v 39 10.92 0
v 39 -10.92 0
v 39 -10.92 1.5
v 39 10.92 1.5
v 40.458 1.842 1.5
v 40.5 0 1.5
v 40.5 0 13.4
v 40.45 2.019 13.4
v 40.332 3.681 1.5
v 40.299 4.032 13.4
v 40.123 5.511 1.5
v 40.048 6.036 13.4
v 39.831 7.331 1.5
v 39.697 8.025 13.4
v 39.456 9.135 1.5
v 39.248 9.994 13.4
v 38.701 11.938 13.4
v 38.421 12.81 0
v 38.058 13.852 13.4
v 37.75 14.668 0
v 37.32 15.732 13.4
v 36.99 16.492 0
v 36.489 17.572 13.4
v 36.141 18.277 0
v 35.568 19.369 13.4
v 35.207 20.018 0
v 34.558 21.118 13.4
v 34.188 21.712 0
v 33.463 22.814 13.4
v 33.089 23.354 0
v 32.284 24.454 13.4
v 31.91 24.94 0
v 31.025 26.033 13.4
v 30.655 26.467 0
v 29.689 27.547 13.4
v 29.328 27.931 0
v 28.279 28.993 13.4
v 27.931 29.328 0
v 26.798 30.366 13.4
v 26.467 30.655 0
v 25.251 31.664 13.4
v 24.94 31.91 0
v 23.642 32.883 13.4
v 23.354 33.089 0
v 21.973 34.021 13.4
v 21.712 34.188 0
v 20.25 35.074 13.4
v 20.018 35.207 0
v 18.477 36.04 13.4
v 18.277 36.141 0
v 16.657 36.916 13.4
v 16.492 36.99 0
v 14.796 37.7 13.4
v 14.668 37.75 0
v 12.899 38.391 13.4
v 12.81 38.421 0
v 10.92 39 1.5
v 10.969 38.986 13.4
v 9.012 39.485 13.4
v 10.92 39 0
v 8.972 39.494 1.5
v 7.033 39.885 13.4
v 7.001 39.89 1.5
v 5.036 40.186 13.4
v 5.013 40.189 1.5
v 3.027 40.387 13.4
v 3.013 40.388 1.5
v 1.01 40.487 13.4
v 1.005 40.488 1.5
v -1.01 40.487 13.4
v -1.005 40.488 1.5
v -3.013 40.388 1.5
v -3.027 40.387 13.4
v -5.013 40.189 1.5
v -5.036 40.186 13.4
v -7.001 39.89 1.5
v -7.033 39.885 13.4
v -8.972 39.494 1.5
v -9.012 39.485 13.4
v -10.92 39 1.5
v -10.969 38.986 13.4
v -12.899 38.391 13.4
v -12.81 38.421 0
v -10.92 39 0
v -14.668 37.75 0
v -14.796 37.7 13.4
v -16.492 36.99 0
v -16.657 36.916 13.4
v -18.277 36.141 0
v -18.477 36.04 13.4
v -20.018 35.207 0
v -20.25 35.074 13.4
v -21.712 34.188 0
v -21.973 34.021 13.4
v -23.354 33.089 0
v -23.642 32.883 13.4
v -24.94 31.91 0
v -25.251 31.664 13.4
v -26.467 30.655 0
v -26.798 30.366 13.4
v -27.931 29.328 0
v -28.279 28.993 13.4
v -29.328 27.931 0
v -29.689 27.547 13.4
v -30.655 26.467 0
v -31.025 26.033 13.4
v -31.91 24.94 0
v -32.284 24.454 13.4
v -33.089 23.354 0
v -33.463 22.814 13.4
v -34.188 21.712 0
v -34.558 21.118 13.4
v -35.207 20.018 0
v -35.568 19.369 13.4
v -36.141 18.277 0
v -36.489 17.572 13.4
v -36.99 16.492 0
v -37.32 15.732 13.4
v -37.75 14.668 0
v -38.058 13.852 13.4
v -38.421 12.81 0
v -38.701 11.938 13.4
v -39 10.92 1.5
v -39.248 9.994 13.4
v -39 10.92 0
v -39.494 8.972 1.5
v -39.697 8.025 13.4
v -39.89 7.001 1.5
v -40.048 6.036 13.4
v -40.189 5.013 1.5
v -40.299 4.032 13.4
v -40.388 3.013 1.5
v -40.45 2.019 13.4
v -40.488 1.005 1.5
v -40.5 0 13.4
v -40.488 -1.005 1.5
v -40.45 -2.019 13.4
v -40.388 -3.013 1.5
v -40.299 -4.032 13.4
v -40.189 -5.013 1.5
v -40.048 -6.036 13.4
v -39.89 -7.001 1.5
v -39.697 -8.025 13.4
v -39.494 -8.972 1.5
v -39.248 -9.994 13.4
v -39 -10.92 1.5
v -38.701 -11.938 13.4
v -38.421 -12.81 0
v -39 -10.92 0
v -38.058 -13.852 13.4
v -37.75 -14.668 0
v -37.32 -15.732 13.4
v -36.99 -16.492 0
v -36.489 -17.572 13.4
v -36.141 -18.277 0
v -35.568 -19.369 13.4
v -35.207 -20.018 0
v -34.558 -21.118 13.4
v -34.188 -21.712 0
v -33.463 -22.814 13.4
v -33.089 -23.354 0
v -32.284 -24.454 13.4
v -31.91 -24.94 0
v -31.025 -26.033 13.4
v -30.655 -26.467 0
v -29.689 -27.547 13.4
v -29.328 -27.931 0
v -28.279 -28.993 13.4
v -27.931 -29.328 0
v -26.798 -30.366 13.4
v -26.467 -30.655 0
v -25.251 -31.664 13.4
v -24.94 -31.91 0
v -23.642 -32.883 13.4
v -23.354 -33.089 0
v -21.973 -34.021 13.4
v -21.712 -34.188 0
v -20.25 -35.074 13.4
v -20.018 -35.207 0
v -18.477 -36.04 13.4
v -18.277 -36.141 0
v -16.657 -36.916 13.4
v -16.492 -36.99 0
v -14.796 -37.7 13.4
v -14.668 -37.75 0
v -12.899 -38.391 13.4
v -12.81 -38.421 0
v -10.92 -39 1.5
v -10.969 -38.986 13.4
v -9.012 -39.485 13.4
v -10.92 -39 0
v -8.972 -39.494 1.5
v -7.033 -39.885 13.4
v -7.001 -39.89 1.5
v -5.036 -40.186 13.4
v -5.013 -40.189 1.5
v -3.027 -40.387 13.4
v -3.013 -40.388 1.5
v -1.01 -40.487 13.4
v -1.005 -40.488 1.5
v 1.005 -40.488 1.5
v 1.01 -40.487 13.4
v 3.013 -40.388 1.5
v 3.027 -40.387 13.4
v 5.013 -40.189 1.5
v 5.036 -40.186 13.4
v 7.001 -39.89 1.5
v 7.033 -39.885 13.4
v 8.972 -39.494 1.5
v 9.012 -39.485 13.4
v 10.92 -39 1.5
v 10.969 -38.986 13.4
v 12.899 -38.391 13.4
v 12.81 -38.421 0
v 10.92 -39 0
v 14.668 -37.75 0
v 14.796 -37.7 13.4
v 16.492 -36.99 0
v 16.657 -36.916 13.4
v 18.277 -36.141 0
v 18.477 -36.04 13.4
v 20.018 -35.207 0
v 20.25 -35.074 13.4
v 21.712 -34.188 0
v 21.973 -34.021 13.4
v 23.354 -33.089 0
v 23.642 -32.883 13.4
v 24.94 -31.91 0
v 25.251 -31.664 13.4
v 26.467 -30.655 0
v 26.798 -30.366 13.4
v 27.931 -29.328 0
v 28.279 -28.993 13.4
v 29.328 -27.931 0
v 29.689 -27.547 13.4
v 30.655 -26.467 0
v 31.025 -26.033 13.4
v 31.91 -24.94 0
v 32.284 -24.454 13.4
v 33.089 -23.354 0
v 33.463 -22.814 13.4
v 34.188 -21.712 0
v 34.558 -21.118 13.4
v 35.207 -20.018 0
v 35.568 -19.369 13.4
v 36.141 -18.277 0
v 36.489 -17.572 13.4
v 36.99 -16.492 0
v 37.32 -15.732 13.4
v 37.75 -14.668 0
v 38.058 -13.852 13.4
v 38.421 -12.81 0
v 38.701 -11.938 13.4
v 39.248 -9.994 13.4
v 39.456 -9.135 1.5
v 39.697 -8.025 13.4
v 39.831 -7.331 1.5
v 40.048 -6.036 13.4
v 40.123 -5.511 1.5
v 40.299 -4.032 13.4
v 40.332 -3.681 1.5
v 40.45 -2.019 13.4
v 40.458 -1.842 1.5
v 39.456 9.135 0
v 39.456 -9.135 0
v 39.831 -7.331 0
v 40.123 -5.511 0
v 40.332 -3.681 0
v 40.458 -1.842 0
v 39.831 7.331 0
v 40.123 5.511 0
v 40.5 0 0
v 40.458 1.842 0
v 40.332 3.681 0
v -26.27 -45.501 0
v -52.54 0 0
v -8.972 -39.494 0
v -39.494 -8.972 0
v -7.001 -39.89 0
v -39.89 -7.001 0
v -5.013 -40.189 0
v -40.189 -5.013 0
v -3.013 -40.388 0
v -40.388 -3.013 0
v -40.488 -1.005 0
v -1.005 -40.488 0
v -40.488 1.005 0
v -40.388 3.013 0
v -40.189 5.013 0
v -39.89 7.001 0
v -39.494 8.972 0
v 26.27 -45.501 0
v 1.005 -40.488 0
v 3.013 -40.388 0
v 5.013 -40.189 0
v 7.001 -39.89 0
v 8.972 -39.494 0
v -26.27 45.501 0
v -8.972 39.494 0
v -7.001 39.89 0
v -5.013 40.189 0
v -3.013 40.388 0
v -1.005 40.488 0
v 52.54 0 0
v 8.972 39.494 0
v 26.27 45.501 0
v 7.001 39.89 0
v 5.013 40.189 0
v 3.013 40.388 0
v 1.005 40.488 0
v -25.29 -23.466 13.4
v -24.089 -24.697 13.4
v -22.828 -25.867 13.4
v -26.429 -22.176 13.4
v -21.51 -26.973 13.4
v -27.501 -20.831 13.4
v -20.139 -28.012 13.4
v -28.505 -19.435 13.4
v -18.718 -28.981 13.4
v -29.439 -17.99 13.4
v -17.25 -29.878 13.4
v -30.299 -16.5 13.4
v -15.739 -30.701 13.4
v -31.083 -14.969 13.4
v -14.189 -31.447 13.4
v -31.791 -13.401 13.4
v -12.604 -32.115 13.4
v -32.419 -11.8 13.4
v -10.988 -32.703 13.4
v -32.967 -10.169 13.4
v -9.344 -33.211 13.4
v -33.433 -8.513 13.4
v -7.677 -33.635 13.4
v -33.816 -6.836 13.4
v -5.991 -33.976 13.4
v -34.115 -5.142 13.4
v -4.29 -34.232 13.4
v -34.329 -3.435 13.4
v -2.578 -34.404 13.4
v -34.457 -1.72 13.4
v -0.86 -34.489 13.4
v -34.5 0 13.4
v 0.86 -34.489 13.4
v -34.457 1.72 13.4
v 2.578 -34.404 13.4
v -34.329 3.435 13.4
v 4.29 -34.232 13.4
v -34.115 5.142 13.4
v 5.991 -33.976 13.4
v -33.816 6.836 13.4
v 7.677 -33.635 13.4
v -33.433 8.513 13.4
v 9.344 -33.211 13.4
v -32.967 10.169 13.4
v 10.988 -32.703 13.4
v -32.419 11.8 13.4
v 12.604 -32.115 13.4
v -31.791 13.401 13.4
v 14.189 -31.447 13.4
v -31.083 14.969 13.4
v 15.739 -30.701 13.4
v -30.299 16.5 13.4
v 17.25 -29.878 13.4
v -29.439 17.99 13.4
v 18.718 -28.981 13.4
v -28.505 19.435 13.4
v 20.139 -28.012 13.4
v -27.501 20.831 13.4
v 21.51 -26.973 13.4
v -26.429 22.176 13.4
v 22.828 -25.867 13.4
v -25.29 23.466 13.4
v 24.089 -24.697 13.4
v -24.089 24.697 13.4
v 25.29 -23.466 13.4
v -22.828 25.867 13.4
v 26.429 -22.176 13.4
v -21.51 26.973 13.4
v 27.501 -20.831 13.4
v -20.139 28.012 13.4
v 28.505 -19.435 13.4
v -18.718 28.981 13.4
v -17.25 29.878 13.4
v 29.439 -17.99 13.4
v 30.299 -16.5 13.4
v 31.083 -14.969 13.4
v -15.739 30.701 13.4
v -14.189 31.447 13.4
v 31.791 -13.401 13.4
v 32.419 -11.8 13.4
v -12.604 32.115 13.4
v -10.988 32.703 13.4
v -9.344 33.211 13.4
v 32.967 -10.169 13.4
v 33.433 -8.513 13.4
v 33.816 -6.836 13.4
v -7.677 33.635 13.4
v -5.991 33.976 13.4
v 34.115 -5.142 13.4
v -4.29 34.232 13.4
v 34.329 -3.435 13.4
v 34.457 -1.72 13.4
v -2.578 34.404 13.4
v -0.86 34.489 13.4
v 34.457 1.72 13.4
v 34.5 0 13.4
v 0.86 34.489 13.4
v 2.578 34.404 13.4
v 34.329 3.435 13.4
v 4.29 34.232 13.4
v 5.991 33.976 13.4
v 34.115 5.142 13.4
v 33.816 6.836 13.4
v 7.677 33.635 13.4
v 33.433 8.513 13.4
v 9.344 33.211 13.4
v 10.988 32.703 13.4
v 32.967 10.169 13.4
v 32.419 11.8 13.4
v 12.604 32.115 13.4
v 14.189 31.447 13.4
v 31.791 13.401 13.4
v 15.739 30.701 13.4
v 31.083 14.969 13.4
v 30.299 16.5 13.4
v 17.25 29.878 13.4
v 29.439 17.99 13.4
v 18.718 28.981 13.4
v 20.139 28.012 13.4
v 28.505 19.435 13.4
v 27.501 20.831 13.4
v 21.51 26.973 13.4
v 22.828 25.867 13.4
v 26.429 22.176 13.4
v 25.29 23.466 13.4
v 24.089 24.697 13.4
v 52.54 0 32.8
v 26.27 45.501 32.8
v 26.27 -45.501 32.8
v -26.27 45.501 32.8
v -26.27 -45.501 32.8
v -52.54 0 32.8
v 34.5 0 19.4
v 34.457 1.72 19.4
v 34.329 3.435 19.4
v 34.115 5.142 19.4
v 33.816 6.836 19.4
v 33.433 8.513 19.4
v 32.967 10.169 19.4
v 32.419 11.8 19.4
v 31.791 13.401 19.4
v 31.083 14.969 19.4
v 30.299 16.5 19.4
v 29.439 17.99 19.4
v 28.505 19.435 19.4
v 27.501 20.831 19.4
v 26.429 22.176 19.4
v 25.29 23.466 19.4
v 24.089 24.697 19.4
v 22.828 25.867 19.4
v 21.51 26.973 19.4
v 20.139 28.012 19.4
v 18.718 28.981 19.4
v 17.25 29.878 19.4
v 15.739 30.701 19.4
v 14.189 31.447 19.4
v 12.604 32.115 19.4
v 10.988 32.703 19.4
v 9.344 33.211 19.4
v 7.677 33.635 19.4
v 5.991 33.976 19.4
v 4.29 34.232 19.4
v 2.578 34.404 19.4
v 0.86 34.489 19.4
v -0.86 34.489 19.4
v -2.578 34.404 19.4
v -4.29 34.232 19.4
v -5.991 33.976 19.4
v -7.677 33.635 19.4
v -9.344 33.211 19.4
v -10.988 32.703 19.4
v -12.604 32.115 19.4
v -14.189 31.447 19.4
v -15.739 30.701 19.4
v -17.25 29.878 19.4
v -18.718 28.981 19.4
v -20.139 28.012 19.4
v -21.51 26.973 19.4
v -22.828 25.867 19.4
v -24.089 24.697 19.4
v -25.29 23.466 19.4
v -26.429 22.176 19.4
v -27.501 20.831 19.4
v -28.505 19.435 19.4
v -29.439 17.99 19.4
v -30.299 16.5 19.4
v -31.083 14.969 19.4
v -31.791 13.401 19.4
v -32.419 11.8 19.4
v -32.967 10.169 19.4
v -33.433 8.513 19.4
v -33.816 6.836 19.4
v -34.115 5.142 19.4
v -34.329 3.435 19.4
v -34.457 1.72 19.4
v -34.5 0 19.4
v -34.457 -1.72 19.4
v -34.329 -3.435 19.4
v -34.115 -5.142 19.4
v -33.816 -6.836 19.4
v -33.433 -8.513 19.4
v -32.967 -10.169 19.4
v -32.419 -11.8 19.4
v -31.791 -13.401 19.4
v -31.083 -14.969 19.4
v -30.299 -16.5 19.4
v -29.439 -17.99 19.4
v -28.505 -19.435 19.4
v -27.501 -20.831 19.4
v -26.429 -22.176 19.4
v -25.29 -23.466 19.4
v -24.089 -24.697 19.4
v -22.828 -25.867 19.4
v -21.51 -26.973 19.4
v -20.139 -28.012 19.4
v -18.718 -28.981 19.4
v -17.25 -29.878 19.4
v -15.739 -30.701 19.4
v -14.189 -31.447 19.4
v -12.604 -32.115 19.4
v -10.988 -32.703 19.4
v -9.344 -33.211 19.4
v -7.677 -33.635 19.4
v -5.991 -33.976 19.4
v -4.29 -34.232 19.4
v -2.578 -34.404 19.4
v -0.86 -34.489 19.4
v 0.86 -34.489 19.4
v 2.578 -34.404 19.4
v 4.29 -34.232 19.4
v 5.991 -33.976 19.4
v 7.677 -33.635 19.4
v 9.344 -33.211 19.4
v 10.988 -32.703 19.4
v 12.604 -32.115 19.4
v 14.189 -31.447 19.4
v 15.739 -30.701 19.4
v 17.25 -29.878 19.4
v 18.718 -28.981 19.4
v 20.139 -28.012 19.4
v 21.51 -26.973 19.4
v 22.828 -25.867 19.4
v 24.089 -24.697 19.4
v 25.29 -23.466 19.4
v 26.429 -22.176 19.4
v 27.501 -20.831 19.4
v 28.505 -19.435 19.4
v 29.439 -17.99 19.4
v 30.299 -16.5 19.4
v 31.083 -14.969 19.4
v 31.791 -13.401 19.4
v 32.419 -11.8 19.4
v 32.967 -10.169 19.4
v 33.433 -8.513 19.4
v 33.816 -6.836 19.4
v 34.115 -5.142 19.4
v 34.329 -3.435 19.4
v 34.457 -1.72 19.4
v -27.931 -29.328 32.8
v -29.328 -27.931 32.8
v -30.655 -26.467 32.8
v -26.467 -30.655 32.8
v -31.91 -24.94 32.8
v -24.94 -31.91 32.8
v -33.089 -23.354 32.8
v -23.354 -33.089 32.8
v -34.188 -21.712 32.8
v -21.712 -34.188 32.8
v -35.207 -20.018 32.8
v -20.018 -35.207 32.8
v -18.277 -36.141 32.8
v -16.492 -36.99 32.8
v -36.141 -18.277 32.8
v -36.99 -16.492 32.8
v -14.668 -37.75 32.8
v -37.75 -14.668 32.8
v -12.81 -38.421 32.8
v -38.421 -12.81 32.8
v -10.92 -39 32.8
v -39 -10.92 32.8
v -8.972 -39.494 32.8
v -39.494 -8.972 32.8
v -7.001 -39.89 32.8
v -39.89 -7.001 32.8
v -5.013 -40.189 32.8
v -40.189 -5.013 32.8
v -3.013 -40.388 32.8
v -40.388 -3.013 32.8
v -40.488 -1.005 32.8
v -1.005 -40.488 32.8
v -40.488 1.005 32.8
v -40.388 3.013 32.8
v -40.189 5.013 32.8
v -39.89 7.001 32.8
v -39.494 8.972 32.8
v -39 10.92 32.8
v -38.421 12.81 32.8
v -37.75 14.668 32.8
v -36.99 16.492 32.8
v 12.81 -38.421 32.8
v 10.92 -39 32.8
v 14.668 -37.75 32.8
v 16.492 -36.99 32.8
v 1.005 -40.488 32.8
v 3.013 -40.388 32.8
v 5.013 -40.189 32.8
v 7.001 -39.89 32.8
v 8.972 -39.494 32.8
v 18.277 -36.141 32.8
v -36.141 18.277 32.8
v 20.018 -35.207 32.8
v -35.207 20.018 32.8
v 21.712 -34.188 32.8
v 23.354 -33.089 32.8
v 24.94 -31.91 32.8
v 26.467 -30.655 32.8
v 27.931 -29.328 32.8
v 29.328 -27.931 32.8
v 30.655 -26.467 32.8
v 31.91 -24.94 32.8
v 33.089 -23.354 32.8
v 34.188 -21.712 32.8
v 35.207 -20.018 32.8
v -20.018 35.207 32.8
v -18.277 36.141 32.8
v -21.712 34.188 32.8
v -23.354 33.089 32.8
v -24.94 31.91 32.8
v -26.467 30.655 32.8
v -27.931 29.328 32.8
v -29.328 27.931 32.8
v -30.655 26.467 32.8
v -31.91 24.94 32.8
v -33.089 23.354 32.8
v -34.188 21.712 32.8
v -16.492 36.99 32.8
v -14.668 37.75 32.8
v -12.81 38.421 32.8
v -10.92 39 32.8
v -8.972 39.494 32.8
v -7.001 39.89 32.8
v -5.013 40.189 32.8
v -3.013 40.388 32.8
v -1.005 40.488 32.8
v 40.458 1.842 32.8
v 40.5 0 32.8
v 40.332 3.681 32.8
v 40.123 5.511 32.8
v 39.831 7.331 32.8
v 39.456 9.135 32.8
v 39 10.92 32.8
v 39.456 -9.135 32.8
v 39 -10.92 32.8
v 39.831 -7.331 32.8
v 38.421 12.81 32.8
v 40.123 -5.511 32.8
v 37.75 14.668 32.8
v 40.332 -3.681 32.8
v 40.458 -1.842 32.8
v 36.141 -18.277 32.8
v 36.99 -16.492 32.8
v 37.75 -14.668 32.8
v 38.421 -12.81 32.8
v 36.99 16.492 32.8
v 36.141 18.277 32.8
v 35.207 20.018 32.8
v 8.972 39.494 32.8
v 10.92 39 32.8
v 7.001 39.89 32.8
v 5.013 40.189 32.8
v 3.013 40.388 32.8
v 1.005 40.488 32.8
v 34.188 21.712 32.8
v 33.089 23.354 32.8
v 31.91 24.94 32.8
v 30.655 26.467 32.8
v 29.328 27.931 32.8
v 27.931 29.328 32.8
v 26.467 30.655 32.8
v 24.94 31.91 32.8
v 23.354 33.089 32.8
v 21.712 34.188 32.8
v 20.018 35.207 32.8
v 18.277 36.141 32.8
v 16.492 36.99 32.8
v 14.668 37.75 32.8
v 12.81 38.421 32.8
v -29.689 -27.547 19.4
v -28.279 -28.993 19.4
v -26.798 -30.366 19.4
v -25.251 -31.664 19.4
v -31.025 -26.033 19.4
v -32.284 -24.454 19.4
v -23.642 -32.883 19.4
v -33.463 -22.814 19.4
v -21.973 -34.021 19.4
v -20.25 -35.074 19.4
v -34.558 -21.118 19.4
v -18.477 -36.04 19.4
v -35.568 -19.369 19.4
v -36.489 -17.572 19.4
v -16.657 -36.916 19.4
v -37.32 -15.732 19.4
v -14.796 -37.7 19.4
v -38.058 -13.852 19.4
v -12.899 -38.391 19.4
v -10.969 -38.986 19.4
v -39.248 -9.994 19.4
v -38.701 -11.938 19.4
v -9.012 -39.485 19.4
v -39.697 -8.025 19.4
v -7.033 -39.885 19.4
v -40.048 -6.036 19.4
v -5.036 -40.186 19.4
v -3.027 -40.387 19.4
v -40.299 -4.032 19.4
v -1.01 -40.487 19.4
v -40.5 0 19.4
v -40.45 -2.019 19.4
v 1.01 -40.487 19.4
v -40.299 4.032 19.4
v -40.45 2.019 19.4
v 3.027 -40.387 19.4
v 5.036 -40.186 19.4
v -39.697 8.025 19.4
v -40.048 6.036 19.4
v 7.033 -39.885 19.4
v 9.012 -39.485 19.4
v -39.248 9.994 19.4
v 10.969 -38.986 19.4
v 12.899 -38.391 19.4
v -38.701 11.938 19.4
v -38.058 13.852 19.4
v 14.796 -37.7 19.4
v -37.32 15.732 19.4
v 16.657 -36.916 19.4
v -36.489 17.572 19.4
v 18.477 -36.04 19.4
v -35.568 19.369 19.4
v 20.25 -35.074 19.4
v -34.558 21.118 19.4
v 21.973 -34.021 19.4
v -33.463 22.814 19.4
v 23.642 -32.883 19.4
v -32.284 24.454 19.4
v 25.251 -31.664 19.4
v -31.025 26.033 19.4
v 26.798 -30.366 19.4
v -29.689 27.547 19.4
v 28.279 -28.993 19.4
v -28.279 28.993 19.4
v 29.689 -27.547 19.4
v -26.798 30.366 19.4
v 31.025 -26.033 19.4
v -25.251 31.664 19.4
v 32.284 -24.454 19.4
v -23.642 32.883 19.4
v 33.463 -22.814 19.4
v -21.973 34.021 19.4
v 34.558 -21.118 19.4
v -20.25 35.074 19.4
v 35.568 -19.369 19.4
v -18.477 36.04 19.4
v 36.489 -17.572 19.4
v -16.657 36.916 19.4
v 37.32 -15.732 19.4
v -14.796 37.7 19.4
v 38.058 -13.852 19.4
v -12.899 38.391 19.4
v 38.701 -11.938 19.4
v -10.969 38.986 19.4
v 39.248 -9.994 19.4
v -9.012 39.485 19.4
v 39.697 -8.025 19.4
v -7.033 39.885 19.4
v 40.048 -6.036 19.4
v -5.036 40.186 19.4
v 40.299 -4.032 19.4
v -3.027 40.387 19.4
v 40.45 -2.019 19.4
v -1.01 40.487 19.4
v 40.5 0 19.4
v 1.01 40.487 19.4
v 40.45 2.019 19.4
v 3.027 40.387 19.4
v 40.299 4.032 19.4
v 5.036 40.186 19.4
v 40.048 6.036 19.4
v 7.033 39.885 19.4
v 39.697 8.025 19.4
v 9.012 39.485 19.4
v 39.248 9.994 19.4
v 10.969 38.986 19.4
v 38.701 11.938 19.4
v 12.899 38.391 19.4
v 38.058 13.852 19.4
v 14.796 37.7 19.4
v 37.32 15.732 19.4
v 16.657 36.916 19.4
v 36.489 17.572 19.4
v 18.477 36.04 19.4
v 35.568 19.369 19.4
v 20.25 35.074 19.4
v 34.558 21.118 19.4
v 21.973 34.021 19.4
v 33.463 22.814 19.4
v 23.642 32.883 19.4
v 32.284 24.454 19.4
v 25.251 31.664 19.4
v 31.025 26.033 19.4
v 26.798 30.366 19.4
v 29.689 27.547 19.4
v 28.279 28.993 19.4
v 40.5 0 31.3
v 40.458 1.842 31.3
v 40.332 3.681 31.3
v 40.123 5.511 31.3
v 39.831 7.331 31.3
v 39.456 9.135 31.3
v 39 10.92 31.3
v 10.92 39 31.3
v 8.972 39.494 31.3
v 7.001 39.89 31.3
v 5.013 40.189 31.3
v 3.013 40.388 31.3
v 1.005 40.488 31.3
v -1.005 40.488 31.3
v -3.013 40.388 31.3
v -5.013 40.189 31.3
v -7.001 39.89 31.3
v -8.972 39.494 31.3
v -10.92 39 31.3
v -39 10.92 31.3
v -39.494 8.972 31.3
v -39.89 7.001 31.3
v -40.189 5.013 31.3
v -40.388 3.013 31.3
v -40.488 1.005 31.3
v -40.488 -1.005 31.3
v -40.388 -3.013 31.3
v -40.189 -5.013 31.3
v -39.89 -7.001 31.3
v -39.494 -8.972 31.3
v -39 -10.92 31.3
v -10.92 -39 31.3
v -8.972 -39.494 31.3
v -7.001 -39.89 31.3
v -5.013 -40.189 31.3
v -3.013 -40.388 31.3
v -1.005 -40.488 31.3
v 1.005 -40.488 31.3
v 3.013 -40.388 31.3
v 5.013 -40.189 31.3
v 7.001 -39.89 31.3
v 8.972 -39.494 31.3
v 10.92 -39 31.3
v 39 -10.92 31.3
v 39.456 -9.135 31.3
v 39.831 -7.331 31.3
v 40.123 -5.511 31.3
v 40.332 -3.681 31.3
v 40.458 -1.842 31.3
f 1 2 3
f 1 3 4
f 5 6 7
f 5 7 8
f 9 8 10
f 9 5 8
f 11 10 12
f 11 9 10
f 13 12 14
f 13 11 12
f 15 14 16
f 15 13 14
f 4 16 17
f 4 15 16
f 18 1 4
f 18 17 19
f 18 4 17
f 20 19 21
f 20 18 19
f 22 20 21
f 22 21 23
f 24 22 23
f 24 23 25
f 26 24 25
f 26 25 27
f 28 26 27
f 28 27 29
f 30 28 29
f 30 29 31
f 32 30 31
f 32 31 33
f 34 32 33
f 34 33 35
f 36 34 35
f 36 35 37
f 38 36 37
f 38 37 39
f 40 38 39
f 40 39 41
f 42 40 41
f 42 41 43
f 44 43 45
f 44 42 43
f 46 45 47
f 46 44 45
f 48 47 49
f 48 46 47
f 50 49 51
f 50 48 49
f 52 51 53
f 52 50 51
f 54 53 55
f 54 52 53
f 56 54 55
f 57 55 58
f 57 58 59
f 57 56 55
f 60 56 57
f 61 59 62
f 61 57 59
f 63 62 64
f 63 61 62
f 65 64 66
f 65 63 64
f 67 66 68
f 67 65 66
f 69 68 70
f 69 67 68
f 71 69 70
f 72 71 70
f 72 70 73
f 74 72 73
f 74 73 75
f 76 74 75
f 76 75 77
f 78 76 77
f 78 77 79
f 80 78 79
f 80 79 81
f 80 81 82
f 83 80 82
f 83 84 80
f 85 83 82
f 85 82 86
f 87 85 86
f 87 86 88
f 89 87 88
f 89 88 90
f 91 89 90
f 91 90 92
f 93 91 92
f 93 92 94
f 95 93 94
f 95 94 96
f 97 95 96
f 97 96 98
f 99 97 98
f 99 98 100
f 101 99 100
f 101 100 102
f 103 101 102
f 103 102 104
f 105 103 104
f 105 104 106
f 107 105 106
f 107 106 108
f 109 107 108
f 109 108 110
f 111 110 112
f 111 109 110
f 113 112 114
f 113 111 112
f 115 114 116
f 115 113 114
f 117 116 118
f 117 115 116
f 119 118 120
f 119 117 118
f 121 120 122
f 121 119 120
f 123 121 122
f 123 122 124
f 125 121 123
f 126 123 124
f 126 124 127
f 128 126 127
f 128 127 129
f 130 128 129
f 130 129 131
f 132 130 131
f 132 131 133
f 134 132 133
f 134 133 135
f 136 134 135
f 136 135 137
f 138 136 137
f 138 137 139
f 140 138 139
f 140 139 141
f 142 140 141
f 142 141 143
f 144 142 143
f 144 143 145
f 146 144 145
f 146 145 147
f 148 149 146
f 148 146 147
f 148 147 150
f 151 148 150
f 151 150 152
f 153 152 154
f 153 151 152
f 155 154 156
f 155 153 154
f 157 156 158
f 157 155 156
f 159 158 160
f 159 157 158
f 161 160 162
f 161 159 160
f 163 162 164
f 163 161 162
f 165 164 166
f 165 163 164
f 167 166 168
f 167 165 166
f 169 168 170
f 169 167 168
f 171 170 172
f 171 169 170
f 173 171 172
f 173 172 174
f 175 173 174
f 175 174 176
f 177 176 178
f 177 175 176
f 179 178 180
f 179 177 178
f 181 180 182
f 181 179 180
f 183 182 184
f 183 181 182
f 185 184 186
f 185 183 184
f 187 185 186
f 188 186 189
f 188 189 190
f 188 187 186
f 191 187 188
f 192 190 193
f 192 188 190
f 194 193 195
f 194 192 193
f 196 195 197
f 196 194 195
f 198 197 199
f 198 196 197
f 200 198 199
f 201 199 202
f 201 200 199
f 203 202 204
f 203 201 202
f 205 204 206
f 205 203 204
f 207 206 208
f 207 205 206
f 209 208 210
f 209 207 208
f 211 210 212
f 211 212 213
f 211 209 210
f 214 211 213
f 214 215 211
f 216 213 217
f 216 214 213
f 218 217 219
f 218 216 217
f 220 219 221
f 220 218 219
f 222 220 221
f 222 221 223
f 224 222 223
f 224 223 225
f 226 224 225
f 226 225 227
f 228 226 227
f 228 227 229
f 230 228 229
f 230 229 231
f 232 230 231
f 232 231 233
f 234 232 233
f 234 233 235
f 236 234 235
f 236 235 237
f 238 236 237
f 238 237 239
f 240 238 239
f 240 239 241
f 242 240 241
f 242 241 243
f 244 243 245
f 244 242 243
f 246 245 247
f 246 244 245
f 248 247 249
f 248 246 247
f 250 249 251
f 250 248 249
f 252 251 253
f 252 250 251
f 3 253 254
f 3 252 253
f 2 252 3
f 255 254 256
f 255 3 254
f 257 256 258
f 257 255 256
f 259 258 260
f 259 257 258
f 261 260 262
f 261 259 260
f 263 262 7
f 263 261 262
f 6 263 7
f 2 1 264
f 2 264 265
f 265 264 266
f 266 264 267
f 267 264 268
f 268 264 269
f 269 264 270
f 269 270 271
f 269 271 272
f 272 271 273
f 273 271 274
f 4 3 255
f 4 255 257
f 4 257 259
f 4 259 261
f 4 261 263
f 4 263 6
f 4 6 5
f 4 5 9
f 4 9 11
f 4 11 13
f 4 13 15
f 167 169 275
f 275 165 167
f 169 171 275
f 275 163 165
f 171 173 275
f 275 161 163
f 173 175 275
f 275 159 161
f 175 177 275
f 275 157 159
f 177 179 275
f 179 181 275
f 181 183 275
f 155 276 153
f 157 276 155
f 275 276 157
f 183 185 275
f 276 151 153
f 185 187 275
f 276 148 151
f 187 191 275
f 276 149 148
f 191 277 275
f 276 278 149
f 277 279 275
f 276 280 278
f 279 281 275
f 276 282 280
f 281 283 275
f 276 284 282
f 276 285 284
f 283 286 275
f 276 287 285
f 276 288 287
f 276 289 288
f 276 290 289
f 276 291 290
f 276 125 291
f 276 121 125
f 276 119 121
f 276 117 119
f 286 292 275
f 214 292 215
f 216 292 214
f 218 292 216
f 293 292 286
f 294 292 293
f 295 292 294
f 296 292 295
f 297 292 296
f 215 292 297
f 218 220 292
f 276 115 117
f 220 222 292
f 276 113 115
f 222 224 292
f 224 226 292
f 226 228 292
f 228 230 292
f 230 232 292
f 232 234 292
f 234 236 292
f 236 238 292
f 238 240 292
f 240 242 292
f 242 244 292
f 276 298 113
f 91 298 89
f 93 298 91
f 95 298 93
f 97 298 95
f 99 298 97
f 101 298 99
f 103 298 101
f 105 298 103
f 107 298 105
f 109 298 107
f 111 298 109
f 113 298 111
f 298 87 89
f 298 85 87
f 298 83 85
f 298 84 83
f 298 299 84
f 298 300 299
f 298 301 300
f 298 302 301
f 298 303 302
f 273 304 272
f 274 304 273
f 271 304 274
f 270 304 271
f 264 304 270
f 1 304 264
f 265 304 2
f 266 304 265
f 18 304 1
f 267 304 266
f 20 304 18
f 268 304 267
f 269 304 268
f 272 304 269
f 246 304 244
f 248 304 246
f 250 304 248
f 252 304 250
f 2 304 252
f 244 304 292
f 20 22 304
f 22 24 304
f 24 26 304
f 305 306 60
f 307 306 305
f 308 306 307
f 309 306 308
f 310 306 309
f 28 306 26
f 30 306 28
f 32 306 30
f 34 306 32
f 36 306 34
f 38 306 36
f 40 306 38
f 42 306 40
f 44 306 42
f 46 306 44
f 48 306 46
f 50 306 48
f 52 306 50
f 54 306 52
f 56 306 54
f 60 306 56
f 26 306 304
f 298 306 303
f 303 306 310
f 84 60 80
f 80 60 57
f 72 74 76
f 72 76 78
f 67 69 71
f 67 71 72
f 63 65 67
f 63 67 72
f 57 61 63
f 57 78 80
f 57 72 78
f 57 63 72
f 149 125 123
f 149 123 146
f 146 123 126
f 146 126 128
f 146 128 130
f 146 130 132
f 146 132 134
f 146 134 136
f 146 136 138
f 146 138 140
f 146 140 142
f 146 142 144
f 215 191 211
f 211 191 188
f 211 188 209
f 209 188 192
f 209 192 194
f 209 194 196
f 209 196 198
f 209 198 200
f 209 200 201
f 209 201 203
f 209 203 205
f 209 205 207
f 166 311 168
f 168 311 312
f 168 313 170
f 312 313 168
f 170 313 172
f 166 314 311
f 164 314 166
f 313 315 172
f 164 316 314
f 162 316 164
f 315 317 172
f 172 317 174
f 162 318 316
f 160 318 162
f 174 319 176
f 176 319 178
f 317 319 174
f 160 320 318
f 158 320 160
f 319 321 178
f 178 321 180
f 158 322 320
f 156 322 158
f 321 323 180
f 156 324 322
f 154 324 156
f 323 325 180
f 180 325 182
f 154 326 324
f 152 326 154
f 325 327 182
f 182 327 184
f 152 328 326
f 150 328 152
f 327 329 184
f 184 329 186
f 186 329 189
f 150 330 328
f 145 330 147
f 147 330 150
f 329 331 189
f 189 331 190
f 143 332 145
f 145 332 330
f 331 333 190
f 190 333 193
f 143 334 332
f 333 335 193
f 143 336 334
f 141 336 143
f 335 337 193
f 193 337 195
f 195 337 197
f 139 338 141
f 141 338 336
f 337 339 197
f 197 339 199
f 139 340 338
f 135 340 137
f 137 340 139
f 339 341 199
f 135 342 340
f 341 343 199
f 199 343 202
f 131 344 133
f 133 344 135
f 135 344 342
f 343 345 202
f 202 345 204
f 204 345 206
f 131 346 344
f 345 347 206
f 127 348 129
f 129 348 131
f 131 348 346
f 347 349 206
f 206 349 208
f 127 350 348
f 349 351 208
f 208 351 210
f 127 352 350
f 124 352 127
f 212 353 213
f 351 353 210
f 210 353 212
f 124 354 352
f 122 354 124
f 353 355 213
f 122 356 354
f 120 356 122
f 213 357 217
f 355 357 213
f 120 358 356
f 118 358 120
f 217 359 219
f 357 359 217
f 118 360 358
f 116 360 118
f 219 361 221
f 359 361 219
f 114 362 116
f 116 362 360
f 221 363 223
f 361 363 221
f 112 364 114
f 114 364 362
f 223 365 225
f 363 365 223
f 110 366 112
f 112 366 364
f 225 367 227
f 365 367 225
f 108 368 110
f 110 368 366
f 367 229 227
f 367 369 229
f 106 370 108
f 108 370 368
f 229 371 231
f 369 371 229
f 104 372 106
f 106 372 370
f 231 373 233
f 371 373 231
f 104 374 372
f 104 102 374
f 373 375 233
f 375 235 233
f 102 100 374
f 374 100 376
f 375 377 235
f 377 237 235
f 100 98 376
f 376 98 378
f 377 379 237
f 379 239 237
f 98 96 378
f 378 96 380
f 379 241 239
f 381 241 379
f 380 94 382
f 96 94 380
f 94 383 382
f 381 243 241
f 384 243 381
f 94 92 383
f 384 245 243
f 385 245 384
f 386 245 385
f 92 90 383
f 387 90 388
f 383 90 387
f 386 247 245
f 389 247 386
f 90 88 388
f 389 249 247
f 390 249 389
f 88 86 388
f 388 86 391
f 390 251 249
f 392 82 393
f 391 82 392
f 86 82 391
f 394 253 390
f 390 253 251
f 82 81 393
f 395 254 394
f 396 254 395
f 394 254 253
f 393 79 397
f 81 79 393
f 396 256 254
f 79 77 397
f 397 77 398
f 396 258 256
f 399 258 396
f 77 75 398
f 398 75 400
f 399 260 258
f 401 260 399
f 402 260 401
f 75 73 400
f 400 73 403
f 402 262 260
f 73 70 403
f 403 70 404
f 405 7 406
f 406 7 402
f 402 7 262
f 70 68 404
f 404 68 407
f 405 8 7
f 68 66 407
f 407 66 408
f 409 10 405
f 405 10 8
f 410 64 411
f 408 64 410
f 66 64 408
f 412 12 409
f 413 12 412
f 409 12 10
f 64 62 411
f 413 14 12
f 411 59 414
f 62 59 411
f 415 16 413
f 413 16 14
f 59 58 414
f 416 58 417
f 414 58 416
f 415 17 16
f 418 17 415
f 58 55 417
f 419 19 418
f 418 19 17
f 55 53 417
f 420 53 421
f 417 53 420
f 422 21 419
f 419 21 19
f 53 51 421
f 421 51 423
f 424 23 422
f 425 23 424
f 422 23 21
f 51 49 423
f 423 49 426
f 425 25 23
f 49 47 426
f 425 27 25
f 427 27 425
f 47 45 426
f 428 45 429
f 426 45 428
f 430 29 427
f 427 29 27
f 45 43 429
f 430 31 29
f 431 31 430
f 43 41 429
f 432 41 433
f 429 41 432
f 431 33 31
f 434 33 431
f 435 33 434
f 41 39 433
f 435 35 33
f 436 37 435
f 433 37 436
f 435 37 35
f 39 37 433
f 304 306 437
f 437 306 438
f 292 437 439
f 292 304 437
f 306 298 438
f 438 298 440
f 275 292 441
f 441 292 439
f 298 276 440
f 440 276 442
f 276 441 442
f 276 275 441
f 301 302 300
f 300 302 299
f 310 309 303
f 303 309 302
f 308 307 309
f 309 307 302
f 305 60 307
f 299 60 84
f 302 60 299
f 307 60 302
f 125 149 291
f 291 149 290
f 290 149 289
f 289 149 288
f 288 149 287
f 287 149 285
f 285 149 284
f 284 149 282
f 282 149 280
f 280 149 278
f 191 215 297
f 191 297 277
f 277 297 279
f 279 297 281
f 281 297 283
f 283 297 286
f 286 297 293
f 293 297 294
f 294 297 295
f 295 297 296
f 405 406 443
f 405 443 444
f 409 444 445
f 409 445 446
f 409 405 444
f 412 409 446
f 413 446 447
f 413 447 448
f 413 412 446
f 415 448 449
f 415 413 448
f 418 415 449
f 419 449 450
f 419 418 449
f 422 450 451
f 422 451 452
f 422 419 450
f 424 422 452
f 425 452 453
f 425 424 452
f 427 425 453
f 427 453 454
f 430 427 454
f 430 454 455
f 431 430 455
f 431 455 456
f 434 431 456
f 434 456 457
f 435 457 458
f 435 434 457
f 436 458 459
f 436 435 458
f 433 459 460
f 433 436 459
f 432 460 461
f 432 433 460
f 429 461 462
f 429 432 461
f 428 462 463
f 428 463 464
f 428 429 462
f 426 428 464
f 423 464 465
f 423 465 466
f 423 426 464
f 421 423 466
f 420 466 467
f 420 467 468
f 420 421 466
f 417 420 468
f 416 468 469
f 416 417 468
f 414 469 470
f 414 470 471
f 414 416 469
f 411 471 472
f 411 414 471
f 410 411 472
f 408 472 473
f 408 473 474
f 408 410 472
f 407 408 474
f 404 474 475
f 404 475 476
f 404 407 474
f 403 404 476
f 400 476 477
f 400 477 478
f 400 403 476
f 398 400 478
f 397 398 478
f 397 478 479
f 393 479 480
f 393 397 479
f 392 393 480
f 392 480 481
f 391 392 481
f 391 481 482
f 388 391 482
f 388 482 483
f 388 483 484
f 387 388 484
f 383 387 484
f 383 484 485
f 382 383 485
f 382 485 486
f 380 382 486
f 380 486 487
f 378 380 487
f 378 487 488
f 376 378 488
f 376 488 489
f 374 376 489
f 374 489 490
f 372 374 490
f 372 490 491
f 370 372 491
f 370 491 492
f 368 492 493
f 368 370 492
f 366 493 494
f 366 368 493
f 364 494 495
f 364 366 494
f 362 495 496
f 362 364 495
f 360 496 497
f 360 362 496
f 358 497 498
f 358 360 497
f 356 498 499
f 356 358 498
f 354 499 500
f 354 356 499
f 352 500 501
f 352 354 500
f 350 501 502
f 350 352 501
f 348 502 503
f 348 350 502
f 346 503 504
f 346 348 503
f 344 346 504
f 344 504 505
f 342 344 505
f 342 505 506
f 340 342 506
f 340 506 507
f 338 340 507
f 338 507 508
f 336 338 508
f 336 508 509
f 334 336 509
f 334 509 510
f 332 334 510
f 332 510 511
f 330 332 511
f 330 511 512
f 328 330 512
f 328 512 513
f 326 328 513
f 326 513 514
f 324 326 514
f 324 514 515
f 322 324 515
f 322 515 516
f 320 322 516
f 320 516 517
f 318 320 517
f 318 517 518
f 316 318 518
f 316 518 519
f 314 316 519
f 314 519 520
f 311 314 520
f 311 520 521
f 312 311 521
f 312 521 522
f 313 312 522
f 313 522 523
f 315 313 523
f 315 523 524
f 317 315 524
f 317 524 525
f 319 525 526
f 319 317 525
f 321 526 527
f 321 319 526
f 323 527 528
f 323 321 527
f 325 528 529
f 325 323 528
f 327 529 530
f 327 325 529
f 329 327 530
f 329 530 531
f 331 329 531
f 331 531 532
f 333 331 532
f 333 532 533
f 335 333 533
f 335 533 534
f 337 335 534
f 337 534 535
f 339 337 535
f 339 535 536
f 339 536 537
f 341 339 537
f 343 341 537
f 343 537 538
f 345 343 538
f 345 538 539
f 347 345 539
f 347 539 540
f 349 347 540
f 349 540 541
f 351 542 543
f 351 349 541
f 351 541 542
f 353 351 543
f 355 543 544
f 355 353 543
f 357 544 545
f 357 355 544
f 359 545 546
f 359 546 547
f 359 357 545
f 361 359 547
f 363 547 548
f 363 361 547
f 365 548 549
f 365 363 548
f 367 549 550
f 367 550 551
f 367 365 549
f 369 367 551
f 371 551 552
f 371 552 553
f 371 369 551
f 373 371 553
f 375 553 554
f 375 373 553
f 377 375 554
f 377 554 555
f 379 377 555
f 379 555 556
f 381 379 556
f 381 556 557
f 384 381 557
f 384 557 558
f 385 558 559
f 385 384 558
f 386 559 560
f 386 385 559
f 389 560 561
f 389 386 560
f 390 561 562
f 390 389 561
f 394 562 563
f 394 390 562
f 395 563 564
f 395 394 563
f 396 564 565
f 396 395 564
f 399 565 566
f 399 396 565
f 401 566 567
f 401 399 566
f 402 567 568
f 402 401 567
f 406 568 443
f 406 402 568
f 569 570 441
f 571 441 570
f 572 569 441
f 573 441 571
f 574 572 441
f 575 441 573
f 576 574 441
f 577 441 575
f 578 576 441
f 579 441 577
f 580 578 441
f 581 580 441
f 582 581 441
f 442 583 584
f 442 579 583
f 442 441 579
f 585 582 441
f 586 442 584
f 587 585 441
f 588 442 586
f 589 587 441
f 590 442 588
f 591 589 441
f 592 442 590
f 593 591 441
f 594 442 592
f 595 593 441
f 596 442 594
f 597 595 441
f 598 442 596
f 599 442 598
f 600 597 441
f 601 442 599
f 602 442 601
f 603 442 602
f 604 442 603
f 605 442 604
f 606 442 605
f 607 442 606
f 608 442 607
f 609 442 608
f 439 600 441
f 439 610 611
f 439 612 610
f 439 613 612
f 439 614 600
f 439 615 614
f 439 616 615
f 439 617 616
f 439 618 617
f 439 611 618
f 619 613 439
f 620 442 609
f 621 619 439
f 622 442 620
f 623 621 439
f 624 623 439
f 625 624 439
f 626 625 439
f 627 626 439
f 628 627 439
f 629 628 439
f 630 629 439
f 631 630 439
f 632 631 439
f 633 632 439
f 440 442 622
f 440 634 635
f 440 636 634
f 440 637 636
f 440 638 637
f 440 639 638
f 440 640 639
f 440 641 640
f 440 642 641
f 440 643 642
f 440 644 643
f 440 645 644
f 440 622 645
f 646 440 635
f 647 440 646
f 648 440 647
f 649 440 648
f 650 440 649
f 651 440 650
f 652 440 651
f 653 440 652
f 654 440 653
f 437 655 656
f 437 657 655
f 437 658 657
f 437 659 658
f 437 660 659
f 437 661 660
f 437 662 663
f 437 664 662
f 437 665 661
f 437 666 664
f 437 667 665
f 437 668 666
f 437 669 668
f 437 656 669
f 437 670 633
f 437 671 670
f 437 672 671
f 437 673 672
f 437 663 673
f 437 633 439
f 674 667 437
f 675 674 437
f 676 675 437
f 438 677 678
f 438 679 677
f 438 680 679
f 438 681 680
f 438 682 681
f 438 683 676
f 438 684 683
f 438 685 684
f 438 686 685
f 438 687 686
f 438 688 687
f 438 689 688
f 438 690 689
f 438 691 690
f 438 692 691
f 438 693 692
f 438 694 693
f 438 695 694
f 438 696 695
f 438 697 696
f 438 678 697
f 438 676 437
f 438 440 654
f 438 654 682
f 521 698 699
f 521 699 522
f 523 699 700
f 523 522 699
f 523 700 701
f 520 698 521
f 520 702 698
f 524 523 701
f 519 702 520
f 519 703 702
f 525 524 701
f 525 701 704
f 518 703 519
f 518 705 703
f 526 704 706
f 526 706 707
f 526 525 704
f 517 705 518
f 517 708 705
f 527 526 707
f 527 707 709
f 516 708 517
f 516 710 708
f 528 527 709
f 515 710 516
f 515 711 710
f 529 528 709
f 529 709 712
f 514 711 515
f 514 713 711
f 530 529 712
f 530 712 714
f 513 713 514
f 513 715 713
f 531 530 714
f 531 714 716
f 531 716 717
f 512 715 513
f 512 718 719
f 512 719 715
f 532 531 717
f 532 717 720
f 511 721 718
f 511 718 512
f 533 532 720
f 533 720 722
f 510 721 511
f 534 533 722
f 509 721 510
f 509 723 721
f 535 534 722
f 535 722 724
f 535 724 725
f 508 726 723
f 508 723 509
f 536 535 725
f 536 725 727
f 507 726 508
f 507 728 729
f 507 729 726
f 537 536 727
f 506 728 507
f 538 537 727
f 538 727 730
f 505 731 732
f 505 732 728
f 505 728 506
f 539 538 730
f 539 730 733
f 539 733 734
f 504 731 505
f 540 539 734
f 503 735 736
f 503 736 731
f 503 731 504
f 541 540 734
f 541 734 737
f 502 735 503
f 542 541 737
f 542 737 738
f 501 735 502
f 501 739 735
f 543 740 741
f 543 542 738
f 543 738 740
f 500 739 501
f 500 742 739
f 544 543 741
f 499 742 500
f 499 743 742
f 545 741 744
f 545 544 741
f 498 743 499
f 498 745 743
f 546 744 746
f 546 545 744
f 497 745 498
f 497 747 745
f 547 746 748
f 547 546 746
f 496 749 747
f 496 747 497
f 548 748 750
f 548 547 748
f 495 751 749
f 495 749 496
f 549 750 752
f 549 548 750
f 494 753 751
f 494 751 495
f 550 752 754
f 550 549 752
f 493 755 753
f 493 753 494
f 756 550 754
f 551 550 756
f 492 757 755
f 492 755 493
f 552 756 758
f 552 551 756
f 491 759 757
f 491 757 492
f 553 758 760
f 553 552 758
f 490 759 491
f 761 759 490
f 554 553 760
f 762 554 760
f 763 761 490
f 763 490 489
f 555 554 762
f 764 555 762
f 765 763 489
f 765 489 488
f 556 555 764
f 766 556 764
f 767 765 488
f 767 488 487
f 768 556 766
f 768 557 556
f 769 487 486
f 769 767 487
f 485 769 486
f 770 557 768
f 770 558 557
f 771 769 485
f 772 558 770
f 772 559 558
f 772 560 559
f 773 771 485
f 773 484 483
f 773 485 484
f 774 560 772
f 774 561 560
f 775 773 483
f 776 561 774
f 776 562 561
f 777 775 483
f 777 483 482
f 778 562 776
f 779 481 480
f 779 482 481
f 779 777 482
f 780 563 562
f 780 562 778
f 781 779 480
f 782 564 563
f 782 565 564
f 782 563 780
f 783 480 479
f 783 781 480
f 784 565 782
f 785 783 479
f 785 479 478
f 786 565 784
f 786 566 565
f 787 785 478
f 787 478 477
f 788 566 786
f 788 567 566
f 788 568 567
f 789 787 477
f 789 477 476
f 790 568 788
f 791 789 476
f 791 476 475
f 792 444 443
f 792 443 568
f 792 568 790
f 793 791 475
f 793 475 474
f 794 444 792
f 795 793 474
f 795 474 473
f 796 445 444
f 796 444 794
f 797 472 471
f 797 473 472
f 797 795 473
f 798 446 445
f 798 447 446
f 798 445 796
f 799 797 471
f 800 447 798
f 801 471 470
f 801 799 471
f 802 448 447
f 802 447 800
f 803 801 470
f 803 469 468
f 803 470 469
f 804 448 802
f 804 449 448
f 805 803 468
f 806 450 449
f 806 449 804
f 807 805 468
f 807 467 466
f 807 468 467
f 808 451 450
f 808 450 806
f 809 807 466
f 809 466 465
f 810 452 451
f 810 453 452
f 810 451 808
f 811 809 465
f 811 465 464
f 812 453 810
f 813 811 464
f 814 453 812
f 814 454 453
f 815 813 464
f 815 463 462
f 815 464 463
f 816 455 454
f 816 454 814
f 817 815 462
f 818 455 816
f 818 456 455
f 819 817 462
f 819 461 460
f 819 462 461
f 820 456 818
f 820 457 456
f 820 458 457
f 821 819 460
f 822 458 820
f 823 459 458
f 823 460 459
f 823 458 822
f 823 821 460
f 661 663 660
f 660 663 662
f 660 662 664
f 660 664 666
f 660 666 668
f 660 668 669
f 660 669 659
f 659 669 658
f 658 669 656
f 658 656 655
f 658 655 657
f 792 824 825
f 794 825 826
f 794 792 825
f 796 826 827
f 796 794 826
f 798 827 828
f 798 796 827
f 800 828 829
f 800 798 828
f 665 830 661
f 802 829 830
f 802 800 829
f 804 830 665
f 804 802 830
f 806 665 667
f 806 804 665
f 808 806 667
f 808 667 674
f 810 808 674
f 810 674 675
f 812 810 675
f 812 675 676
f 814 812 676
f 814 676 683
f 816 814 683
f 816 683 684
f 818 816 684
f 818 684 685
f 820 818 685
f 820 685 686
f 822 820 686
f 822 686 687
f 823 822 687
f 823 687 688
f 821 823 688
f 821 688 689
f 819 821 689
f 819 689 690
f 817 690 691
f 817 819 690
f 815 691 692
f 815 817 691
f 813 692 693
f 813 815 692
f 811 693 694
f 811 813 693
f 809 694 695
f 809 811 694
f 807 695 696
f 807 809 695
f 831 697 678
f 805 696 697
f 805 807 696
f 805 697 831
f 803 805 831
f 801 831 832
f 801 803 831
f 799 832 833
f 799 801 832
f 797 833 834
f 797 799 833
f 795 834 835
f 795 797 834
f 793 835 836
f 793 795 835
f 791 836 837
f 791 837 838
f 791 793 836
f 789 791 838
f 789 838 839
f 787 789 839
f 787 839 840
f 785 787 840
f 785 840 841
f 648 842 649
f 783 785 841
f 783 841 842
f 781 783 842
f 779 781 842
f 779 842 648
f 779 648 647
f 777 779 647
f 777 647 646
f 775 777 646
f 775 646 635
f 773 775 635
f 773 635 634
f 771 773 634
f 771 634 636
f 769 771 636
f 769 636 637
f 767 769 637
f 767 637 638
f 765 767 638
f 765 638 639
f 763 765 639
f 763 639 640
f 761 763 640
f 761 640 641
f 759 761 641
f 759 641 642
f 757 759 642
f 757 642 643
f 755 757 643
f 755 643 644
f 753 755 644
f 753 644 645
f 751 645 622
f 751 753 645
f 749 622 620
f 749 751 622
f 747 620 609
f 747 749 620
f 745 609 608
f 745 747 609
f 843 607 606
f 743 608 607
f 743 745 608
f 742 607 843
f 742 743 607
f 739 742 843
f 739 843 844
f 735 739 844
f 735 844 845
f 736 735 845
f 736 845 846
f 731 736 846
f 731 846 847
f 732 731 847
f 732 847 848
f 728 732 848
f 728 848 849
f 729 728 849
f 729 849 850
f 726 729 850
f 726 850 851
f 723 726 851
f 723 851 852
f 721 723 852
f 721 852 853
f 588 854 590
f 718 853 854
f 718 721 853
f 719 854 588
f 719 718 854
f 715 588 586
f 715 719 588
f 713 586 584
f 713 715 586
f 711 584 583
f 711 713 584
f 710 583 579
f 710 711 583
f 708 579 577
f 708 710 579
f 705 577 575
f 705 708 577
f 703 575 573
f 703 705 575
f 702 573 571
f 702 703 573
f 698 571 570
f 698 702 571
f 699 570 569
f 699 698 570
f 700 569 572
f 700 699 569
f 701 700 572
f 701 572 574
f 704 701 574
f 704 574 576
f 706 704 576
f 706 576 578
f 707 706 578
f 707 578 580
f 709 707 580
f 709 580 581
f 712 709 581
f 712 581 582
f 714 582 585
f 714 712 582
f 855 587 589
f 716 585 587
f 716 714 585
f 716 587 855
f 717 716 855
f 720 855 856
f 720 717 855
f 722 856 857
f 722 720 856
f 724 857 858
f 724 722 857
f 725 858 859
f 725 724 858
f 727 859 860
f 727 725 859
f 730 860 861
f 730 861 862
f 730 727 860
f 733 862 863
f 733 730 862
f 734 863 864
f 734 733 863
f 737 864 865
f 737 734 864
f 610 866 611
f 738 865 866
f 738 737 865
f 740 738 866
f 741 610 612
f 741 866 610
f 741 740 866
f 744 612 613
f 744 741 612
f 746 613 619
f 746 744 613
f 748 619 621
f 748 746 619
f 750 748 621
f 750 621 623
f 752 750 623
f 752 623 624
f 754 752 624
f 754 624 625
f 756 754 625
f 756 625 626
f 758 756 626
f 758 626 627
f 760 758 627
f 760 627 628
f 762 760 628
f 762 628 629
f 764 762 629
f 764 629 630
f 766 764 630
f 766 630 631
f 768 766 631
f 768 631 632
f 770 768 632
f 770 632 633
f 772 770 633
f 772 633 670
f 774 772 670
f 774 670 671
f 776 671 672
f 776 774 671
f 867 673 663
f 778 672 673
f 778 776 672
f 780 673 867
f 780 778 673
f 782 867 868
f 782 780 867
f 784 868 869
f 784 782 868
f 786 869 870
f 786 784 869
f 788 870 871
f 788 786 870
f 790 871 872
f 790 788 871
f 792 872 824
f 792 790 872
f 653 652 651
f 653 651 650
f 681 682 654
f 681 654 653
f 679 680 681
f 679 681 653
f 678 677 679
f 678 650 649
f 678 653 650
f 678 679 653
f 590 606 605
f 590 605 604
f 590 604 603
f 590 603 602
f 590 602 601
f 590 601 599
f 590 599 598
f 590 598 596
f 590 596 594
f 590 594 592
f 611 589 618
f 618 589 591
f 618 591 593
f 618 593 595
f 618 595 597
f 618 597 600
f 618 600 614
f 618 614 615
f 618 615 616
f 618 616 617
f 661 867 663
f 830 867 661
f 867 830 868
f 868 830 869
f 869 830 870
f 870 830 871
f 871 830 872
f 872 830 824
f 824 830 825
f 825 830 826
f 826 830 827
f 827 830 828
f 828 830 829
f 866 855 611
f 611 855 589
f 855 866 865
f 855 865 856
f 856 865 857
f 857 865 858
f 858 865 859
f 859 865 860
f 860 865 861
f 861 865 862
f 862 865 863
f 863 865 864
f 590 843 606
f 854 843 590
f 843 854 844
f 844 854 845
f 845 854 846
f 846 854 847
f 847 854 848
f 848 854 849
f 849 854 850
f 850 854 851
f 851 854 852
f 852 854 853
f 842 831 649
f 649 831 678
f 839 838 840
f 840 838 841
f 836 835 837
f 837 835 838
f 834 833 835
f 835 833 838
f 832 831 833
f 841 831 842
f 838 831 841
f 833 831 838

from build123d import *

# Parameters (mm, degrees)
SKETCH001_R      = 40.5
EXTRUDE011_DEPTH = 32.8
EXTRUDE010_DEPTH = 32.8
SKETCH006_R      = 34.5
EXTRUDE009_DEPTH = 6
SKETCH005_R      = 40.5
EXTRUDE008_DEPTH = 6
EXTRUDE005_DEPTH = 1.5
EXTRUDE006_DEPTH = 1.5
EXTRUDE007_DEPTH = 1.5
EXTRUDE004_DEPTH = 1.5
EXTRUDE001_DEPTH = 1.5
EXTRUDE002_DEPTH = 1.5
EXTRUDE003_DEPTH = 1.5
EXTRUDE_DEPTH    = 1.5


with BuildPart() as lid_extrude:
    # Sketch001 (on Sketch) → Extrude011 (new body)
    with BuildSketch(Plane.XY):
        Circle(SKETCH001_R)
    extrude(amount=EXTRUDE011_DEPTH)


with BuildPart() as body:
    # Sketch → Extrude010 (new body)
    with BuildSketch(Plane.XY):
        Polygon((52.540416, 0), (26.270208, 45.501335), (-26.270208, 45.501335), (-52.540416, 0), (-26.270208, -45.501335), (26.270208, -45.501335), align=None)
    extrude(amount=EXTRUDE010_DEPTH)

    # Cut001: cut lid_extrude
    add(lid_extrude.part, mode=Mode.SUBTRACT)


with BuildPart() as lid_divider_in_extrude:
    # Sketch006 → Extrude009 (new body)
    with BuildSketch(Plane.XY):
        Circle(SKETCH006_R)
    extrude(amount=EXTRUDE009_DEPTH)


with BuildPart() as body_divider_fuse:
    # Sketch005 → Extrude008 (new body)
    with BuildSketch(Plane.XY):
        Circle(SKETCH005_R)
    extrude(amount=EXTRUDE008_DEPTH)

    # Cut: cut lid_divider_in_extrude
    add(lid_divider_in_extrude.part, mode=Mode.SUBTRACT)


with BuildPart() as body_divider_fuse_1:
    # Cut placement: moved
    add(body_divider_fuse.part.moved(Location((0, 0, 13.4))))

    # Fusion: union body
    add(body.part)


with BuildPart() as top_teeth1_extrude:
    # MirroredSketch004 → Extrude005 (new body)
    with BuildSketch(Plane.XY):
        with BuildLine():
            Line((10.920165, -39), (-10.920165, -39))
            ThreePointArc((-10.920165, -39), (0, -40.5), (10.920165, -39))
        make_face()
    extrude(amount=EXTRUDE005_DEPTH)


with BuildPart() as top_teeth2_extrude:
    # Sketch007 → Extrude006 (new body)
    with BuildSketch(Plane.XY):
        with BuildLine():
            Line((-39, 10.920165), (-39, -10.920165))
            ThreePointArc((-39, 10.920165), (-40.5, 0), (-39, -10.920165))
        make_face()
    extrude(amount=EXTRUDE006_DEPTH)


with BuildPart() as top_teeth3_extrude:
    # MirroredSketch005 → Extrude007 (new body)
    with BuildSketch(Plane.XY):
        with BuildLine():
            Line((39, -10.920165), (39, 10.920165))
            ThreePointArc((39, -10.920165), (40.5, 0), (39, 10.920165))
        make_face()
    extrude(amount=EXTRUDE007_DEPTH)


with BuildPart() as body_top_teeth_fuse:
    # MirroredSketch003 → Extrude004 (new body)
    with BuildSketch(Plane.XY):
        with BuildLine():
            Line((-10.920165, 39), (10.920165, 39))
            ThreePointArc((10.920165, 39), (0, 40.5), (-10.920165, 39))
        make_face()
    extrude(amount=EXTRUDE004_DEPTH)

    # Compound001: union top_teeth1_extrude, top_teeth2_extrude, top_teeth3_extrude
    add(top_teeth1_extrude.part)
    add(top_teeth2_extrude.part)
    add(top_teeth3_extrude.part)


with BuildPart() as body_top_teeth_fuse_1:
    # Compound001 placement: moved
    add(body_top_teeth_fuse.part.moved(Location((0, 0, 31.3))))

    # Fusion001: union body_divider_fuse
    add(body_divider_fuse_1.part)


with BuildPart() as bottom_teeth1_extrude:
    # MirroredSketch002 → Extrude001 (new body)
    with BuildSketch(Plane.XY):
        with BuildLine():
            Line((-10.920165, 39), (10.920165, 39))
            ThreePointArc((10.920165, 39), (0, 40.5), (-10.920165, 39))
        make_face()
    extrude(amount=EXTRUDE001_DEPTH)


with BuildPart() as bottom_teeth2_extrude:
    # MirroredSketch → Extrude002 (new body)
    with BuildSketch(Plane.XY):
        with BuildLine():
            Line((10.920165, -39), (-10.920165, -39))
            ThreePointArc((-10.920165, -39), (0, -40.5), (10.920165, -39))
        make_face()
    extrude(amount=EXTRUDE002_DEPTH)


with BuildPart() as bottom_teeth3_extrude:
    # Sketch003 → Extrude003 (new body)
    with BuildSketch(Plane.XY):
        with BuildLine():
            Line((-39, 10.920165), (-39, -10.920165))
            ThreePointArc((-39, 10.920165), (-40.5, 0), (-39, -10.920165))
        make_face()
    extrude(amount=EXTRUDE003_DEPTH)


with BuildPart() as body_bottom_teeth_fuse:
    # MirroredSketch001 → Extrude (new body)
    with BuildSketch(Plane.XY):
        with BuildLine():
            Line((39, -10.920165), (39, 10.920165))
            ThreePointArc((39, -10.920165), (40.5, 0), (39, 10.920165))
        make_face()
    extrude(amount=EXTRUDE_DEPTH)

    # Compound: union bottom_teeth1_extrude, bottom_teeth2_extrude, bottom_teeth3_extrude
    add(bottom_teeth1_extrude.part)
    add(bottom_teeth2_extrude.part)
    add(bottom_teeth3_extrude.part)

    # Fusion002: union body_top_teeth_fuse
    add(body_top_teeth_fuse_1.part)


solid = body_bottom_teeth_fuse.part
